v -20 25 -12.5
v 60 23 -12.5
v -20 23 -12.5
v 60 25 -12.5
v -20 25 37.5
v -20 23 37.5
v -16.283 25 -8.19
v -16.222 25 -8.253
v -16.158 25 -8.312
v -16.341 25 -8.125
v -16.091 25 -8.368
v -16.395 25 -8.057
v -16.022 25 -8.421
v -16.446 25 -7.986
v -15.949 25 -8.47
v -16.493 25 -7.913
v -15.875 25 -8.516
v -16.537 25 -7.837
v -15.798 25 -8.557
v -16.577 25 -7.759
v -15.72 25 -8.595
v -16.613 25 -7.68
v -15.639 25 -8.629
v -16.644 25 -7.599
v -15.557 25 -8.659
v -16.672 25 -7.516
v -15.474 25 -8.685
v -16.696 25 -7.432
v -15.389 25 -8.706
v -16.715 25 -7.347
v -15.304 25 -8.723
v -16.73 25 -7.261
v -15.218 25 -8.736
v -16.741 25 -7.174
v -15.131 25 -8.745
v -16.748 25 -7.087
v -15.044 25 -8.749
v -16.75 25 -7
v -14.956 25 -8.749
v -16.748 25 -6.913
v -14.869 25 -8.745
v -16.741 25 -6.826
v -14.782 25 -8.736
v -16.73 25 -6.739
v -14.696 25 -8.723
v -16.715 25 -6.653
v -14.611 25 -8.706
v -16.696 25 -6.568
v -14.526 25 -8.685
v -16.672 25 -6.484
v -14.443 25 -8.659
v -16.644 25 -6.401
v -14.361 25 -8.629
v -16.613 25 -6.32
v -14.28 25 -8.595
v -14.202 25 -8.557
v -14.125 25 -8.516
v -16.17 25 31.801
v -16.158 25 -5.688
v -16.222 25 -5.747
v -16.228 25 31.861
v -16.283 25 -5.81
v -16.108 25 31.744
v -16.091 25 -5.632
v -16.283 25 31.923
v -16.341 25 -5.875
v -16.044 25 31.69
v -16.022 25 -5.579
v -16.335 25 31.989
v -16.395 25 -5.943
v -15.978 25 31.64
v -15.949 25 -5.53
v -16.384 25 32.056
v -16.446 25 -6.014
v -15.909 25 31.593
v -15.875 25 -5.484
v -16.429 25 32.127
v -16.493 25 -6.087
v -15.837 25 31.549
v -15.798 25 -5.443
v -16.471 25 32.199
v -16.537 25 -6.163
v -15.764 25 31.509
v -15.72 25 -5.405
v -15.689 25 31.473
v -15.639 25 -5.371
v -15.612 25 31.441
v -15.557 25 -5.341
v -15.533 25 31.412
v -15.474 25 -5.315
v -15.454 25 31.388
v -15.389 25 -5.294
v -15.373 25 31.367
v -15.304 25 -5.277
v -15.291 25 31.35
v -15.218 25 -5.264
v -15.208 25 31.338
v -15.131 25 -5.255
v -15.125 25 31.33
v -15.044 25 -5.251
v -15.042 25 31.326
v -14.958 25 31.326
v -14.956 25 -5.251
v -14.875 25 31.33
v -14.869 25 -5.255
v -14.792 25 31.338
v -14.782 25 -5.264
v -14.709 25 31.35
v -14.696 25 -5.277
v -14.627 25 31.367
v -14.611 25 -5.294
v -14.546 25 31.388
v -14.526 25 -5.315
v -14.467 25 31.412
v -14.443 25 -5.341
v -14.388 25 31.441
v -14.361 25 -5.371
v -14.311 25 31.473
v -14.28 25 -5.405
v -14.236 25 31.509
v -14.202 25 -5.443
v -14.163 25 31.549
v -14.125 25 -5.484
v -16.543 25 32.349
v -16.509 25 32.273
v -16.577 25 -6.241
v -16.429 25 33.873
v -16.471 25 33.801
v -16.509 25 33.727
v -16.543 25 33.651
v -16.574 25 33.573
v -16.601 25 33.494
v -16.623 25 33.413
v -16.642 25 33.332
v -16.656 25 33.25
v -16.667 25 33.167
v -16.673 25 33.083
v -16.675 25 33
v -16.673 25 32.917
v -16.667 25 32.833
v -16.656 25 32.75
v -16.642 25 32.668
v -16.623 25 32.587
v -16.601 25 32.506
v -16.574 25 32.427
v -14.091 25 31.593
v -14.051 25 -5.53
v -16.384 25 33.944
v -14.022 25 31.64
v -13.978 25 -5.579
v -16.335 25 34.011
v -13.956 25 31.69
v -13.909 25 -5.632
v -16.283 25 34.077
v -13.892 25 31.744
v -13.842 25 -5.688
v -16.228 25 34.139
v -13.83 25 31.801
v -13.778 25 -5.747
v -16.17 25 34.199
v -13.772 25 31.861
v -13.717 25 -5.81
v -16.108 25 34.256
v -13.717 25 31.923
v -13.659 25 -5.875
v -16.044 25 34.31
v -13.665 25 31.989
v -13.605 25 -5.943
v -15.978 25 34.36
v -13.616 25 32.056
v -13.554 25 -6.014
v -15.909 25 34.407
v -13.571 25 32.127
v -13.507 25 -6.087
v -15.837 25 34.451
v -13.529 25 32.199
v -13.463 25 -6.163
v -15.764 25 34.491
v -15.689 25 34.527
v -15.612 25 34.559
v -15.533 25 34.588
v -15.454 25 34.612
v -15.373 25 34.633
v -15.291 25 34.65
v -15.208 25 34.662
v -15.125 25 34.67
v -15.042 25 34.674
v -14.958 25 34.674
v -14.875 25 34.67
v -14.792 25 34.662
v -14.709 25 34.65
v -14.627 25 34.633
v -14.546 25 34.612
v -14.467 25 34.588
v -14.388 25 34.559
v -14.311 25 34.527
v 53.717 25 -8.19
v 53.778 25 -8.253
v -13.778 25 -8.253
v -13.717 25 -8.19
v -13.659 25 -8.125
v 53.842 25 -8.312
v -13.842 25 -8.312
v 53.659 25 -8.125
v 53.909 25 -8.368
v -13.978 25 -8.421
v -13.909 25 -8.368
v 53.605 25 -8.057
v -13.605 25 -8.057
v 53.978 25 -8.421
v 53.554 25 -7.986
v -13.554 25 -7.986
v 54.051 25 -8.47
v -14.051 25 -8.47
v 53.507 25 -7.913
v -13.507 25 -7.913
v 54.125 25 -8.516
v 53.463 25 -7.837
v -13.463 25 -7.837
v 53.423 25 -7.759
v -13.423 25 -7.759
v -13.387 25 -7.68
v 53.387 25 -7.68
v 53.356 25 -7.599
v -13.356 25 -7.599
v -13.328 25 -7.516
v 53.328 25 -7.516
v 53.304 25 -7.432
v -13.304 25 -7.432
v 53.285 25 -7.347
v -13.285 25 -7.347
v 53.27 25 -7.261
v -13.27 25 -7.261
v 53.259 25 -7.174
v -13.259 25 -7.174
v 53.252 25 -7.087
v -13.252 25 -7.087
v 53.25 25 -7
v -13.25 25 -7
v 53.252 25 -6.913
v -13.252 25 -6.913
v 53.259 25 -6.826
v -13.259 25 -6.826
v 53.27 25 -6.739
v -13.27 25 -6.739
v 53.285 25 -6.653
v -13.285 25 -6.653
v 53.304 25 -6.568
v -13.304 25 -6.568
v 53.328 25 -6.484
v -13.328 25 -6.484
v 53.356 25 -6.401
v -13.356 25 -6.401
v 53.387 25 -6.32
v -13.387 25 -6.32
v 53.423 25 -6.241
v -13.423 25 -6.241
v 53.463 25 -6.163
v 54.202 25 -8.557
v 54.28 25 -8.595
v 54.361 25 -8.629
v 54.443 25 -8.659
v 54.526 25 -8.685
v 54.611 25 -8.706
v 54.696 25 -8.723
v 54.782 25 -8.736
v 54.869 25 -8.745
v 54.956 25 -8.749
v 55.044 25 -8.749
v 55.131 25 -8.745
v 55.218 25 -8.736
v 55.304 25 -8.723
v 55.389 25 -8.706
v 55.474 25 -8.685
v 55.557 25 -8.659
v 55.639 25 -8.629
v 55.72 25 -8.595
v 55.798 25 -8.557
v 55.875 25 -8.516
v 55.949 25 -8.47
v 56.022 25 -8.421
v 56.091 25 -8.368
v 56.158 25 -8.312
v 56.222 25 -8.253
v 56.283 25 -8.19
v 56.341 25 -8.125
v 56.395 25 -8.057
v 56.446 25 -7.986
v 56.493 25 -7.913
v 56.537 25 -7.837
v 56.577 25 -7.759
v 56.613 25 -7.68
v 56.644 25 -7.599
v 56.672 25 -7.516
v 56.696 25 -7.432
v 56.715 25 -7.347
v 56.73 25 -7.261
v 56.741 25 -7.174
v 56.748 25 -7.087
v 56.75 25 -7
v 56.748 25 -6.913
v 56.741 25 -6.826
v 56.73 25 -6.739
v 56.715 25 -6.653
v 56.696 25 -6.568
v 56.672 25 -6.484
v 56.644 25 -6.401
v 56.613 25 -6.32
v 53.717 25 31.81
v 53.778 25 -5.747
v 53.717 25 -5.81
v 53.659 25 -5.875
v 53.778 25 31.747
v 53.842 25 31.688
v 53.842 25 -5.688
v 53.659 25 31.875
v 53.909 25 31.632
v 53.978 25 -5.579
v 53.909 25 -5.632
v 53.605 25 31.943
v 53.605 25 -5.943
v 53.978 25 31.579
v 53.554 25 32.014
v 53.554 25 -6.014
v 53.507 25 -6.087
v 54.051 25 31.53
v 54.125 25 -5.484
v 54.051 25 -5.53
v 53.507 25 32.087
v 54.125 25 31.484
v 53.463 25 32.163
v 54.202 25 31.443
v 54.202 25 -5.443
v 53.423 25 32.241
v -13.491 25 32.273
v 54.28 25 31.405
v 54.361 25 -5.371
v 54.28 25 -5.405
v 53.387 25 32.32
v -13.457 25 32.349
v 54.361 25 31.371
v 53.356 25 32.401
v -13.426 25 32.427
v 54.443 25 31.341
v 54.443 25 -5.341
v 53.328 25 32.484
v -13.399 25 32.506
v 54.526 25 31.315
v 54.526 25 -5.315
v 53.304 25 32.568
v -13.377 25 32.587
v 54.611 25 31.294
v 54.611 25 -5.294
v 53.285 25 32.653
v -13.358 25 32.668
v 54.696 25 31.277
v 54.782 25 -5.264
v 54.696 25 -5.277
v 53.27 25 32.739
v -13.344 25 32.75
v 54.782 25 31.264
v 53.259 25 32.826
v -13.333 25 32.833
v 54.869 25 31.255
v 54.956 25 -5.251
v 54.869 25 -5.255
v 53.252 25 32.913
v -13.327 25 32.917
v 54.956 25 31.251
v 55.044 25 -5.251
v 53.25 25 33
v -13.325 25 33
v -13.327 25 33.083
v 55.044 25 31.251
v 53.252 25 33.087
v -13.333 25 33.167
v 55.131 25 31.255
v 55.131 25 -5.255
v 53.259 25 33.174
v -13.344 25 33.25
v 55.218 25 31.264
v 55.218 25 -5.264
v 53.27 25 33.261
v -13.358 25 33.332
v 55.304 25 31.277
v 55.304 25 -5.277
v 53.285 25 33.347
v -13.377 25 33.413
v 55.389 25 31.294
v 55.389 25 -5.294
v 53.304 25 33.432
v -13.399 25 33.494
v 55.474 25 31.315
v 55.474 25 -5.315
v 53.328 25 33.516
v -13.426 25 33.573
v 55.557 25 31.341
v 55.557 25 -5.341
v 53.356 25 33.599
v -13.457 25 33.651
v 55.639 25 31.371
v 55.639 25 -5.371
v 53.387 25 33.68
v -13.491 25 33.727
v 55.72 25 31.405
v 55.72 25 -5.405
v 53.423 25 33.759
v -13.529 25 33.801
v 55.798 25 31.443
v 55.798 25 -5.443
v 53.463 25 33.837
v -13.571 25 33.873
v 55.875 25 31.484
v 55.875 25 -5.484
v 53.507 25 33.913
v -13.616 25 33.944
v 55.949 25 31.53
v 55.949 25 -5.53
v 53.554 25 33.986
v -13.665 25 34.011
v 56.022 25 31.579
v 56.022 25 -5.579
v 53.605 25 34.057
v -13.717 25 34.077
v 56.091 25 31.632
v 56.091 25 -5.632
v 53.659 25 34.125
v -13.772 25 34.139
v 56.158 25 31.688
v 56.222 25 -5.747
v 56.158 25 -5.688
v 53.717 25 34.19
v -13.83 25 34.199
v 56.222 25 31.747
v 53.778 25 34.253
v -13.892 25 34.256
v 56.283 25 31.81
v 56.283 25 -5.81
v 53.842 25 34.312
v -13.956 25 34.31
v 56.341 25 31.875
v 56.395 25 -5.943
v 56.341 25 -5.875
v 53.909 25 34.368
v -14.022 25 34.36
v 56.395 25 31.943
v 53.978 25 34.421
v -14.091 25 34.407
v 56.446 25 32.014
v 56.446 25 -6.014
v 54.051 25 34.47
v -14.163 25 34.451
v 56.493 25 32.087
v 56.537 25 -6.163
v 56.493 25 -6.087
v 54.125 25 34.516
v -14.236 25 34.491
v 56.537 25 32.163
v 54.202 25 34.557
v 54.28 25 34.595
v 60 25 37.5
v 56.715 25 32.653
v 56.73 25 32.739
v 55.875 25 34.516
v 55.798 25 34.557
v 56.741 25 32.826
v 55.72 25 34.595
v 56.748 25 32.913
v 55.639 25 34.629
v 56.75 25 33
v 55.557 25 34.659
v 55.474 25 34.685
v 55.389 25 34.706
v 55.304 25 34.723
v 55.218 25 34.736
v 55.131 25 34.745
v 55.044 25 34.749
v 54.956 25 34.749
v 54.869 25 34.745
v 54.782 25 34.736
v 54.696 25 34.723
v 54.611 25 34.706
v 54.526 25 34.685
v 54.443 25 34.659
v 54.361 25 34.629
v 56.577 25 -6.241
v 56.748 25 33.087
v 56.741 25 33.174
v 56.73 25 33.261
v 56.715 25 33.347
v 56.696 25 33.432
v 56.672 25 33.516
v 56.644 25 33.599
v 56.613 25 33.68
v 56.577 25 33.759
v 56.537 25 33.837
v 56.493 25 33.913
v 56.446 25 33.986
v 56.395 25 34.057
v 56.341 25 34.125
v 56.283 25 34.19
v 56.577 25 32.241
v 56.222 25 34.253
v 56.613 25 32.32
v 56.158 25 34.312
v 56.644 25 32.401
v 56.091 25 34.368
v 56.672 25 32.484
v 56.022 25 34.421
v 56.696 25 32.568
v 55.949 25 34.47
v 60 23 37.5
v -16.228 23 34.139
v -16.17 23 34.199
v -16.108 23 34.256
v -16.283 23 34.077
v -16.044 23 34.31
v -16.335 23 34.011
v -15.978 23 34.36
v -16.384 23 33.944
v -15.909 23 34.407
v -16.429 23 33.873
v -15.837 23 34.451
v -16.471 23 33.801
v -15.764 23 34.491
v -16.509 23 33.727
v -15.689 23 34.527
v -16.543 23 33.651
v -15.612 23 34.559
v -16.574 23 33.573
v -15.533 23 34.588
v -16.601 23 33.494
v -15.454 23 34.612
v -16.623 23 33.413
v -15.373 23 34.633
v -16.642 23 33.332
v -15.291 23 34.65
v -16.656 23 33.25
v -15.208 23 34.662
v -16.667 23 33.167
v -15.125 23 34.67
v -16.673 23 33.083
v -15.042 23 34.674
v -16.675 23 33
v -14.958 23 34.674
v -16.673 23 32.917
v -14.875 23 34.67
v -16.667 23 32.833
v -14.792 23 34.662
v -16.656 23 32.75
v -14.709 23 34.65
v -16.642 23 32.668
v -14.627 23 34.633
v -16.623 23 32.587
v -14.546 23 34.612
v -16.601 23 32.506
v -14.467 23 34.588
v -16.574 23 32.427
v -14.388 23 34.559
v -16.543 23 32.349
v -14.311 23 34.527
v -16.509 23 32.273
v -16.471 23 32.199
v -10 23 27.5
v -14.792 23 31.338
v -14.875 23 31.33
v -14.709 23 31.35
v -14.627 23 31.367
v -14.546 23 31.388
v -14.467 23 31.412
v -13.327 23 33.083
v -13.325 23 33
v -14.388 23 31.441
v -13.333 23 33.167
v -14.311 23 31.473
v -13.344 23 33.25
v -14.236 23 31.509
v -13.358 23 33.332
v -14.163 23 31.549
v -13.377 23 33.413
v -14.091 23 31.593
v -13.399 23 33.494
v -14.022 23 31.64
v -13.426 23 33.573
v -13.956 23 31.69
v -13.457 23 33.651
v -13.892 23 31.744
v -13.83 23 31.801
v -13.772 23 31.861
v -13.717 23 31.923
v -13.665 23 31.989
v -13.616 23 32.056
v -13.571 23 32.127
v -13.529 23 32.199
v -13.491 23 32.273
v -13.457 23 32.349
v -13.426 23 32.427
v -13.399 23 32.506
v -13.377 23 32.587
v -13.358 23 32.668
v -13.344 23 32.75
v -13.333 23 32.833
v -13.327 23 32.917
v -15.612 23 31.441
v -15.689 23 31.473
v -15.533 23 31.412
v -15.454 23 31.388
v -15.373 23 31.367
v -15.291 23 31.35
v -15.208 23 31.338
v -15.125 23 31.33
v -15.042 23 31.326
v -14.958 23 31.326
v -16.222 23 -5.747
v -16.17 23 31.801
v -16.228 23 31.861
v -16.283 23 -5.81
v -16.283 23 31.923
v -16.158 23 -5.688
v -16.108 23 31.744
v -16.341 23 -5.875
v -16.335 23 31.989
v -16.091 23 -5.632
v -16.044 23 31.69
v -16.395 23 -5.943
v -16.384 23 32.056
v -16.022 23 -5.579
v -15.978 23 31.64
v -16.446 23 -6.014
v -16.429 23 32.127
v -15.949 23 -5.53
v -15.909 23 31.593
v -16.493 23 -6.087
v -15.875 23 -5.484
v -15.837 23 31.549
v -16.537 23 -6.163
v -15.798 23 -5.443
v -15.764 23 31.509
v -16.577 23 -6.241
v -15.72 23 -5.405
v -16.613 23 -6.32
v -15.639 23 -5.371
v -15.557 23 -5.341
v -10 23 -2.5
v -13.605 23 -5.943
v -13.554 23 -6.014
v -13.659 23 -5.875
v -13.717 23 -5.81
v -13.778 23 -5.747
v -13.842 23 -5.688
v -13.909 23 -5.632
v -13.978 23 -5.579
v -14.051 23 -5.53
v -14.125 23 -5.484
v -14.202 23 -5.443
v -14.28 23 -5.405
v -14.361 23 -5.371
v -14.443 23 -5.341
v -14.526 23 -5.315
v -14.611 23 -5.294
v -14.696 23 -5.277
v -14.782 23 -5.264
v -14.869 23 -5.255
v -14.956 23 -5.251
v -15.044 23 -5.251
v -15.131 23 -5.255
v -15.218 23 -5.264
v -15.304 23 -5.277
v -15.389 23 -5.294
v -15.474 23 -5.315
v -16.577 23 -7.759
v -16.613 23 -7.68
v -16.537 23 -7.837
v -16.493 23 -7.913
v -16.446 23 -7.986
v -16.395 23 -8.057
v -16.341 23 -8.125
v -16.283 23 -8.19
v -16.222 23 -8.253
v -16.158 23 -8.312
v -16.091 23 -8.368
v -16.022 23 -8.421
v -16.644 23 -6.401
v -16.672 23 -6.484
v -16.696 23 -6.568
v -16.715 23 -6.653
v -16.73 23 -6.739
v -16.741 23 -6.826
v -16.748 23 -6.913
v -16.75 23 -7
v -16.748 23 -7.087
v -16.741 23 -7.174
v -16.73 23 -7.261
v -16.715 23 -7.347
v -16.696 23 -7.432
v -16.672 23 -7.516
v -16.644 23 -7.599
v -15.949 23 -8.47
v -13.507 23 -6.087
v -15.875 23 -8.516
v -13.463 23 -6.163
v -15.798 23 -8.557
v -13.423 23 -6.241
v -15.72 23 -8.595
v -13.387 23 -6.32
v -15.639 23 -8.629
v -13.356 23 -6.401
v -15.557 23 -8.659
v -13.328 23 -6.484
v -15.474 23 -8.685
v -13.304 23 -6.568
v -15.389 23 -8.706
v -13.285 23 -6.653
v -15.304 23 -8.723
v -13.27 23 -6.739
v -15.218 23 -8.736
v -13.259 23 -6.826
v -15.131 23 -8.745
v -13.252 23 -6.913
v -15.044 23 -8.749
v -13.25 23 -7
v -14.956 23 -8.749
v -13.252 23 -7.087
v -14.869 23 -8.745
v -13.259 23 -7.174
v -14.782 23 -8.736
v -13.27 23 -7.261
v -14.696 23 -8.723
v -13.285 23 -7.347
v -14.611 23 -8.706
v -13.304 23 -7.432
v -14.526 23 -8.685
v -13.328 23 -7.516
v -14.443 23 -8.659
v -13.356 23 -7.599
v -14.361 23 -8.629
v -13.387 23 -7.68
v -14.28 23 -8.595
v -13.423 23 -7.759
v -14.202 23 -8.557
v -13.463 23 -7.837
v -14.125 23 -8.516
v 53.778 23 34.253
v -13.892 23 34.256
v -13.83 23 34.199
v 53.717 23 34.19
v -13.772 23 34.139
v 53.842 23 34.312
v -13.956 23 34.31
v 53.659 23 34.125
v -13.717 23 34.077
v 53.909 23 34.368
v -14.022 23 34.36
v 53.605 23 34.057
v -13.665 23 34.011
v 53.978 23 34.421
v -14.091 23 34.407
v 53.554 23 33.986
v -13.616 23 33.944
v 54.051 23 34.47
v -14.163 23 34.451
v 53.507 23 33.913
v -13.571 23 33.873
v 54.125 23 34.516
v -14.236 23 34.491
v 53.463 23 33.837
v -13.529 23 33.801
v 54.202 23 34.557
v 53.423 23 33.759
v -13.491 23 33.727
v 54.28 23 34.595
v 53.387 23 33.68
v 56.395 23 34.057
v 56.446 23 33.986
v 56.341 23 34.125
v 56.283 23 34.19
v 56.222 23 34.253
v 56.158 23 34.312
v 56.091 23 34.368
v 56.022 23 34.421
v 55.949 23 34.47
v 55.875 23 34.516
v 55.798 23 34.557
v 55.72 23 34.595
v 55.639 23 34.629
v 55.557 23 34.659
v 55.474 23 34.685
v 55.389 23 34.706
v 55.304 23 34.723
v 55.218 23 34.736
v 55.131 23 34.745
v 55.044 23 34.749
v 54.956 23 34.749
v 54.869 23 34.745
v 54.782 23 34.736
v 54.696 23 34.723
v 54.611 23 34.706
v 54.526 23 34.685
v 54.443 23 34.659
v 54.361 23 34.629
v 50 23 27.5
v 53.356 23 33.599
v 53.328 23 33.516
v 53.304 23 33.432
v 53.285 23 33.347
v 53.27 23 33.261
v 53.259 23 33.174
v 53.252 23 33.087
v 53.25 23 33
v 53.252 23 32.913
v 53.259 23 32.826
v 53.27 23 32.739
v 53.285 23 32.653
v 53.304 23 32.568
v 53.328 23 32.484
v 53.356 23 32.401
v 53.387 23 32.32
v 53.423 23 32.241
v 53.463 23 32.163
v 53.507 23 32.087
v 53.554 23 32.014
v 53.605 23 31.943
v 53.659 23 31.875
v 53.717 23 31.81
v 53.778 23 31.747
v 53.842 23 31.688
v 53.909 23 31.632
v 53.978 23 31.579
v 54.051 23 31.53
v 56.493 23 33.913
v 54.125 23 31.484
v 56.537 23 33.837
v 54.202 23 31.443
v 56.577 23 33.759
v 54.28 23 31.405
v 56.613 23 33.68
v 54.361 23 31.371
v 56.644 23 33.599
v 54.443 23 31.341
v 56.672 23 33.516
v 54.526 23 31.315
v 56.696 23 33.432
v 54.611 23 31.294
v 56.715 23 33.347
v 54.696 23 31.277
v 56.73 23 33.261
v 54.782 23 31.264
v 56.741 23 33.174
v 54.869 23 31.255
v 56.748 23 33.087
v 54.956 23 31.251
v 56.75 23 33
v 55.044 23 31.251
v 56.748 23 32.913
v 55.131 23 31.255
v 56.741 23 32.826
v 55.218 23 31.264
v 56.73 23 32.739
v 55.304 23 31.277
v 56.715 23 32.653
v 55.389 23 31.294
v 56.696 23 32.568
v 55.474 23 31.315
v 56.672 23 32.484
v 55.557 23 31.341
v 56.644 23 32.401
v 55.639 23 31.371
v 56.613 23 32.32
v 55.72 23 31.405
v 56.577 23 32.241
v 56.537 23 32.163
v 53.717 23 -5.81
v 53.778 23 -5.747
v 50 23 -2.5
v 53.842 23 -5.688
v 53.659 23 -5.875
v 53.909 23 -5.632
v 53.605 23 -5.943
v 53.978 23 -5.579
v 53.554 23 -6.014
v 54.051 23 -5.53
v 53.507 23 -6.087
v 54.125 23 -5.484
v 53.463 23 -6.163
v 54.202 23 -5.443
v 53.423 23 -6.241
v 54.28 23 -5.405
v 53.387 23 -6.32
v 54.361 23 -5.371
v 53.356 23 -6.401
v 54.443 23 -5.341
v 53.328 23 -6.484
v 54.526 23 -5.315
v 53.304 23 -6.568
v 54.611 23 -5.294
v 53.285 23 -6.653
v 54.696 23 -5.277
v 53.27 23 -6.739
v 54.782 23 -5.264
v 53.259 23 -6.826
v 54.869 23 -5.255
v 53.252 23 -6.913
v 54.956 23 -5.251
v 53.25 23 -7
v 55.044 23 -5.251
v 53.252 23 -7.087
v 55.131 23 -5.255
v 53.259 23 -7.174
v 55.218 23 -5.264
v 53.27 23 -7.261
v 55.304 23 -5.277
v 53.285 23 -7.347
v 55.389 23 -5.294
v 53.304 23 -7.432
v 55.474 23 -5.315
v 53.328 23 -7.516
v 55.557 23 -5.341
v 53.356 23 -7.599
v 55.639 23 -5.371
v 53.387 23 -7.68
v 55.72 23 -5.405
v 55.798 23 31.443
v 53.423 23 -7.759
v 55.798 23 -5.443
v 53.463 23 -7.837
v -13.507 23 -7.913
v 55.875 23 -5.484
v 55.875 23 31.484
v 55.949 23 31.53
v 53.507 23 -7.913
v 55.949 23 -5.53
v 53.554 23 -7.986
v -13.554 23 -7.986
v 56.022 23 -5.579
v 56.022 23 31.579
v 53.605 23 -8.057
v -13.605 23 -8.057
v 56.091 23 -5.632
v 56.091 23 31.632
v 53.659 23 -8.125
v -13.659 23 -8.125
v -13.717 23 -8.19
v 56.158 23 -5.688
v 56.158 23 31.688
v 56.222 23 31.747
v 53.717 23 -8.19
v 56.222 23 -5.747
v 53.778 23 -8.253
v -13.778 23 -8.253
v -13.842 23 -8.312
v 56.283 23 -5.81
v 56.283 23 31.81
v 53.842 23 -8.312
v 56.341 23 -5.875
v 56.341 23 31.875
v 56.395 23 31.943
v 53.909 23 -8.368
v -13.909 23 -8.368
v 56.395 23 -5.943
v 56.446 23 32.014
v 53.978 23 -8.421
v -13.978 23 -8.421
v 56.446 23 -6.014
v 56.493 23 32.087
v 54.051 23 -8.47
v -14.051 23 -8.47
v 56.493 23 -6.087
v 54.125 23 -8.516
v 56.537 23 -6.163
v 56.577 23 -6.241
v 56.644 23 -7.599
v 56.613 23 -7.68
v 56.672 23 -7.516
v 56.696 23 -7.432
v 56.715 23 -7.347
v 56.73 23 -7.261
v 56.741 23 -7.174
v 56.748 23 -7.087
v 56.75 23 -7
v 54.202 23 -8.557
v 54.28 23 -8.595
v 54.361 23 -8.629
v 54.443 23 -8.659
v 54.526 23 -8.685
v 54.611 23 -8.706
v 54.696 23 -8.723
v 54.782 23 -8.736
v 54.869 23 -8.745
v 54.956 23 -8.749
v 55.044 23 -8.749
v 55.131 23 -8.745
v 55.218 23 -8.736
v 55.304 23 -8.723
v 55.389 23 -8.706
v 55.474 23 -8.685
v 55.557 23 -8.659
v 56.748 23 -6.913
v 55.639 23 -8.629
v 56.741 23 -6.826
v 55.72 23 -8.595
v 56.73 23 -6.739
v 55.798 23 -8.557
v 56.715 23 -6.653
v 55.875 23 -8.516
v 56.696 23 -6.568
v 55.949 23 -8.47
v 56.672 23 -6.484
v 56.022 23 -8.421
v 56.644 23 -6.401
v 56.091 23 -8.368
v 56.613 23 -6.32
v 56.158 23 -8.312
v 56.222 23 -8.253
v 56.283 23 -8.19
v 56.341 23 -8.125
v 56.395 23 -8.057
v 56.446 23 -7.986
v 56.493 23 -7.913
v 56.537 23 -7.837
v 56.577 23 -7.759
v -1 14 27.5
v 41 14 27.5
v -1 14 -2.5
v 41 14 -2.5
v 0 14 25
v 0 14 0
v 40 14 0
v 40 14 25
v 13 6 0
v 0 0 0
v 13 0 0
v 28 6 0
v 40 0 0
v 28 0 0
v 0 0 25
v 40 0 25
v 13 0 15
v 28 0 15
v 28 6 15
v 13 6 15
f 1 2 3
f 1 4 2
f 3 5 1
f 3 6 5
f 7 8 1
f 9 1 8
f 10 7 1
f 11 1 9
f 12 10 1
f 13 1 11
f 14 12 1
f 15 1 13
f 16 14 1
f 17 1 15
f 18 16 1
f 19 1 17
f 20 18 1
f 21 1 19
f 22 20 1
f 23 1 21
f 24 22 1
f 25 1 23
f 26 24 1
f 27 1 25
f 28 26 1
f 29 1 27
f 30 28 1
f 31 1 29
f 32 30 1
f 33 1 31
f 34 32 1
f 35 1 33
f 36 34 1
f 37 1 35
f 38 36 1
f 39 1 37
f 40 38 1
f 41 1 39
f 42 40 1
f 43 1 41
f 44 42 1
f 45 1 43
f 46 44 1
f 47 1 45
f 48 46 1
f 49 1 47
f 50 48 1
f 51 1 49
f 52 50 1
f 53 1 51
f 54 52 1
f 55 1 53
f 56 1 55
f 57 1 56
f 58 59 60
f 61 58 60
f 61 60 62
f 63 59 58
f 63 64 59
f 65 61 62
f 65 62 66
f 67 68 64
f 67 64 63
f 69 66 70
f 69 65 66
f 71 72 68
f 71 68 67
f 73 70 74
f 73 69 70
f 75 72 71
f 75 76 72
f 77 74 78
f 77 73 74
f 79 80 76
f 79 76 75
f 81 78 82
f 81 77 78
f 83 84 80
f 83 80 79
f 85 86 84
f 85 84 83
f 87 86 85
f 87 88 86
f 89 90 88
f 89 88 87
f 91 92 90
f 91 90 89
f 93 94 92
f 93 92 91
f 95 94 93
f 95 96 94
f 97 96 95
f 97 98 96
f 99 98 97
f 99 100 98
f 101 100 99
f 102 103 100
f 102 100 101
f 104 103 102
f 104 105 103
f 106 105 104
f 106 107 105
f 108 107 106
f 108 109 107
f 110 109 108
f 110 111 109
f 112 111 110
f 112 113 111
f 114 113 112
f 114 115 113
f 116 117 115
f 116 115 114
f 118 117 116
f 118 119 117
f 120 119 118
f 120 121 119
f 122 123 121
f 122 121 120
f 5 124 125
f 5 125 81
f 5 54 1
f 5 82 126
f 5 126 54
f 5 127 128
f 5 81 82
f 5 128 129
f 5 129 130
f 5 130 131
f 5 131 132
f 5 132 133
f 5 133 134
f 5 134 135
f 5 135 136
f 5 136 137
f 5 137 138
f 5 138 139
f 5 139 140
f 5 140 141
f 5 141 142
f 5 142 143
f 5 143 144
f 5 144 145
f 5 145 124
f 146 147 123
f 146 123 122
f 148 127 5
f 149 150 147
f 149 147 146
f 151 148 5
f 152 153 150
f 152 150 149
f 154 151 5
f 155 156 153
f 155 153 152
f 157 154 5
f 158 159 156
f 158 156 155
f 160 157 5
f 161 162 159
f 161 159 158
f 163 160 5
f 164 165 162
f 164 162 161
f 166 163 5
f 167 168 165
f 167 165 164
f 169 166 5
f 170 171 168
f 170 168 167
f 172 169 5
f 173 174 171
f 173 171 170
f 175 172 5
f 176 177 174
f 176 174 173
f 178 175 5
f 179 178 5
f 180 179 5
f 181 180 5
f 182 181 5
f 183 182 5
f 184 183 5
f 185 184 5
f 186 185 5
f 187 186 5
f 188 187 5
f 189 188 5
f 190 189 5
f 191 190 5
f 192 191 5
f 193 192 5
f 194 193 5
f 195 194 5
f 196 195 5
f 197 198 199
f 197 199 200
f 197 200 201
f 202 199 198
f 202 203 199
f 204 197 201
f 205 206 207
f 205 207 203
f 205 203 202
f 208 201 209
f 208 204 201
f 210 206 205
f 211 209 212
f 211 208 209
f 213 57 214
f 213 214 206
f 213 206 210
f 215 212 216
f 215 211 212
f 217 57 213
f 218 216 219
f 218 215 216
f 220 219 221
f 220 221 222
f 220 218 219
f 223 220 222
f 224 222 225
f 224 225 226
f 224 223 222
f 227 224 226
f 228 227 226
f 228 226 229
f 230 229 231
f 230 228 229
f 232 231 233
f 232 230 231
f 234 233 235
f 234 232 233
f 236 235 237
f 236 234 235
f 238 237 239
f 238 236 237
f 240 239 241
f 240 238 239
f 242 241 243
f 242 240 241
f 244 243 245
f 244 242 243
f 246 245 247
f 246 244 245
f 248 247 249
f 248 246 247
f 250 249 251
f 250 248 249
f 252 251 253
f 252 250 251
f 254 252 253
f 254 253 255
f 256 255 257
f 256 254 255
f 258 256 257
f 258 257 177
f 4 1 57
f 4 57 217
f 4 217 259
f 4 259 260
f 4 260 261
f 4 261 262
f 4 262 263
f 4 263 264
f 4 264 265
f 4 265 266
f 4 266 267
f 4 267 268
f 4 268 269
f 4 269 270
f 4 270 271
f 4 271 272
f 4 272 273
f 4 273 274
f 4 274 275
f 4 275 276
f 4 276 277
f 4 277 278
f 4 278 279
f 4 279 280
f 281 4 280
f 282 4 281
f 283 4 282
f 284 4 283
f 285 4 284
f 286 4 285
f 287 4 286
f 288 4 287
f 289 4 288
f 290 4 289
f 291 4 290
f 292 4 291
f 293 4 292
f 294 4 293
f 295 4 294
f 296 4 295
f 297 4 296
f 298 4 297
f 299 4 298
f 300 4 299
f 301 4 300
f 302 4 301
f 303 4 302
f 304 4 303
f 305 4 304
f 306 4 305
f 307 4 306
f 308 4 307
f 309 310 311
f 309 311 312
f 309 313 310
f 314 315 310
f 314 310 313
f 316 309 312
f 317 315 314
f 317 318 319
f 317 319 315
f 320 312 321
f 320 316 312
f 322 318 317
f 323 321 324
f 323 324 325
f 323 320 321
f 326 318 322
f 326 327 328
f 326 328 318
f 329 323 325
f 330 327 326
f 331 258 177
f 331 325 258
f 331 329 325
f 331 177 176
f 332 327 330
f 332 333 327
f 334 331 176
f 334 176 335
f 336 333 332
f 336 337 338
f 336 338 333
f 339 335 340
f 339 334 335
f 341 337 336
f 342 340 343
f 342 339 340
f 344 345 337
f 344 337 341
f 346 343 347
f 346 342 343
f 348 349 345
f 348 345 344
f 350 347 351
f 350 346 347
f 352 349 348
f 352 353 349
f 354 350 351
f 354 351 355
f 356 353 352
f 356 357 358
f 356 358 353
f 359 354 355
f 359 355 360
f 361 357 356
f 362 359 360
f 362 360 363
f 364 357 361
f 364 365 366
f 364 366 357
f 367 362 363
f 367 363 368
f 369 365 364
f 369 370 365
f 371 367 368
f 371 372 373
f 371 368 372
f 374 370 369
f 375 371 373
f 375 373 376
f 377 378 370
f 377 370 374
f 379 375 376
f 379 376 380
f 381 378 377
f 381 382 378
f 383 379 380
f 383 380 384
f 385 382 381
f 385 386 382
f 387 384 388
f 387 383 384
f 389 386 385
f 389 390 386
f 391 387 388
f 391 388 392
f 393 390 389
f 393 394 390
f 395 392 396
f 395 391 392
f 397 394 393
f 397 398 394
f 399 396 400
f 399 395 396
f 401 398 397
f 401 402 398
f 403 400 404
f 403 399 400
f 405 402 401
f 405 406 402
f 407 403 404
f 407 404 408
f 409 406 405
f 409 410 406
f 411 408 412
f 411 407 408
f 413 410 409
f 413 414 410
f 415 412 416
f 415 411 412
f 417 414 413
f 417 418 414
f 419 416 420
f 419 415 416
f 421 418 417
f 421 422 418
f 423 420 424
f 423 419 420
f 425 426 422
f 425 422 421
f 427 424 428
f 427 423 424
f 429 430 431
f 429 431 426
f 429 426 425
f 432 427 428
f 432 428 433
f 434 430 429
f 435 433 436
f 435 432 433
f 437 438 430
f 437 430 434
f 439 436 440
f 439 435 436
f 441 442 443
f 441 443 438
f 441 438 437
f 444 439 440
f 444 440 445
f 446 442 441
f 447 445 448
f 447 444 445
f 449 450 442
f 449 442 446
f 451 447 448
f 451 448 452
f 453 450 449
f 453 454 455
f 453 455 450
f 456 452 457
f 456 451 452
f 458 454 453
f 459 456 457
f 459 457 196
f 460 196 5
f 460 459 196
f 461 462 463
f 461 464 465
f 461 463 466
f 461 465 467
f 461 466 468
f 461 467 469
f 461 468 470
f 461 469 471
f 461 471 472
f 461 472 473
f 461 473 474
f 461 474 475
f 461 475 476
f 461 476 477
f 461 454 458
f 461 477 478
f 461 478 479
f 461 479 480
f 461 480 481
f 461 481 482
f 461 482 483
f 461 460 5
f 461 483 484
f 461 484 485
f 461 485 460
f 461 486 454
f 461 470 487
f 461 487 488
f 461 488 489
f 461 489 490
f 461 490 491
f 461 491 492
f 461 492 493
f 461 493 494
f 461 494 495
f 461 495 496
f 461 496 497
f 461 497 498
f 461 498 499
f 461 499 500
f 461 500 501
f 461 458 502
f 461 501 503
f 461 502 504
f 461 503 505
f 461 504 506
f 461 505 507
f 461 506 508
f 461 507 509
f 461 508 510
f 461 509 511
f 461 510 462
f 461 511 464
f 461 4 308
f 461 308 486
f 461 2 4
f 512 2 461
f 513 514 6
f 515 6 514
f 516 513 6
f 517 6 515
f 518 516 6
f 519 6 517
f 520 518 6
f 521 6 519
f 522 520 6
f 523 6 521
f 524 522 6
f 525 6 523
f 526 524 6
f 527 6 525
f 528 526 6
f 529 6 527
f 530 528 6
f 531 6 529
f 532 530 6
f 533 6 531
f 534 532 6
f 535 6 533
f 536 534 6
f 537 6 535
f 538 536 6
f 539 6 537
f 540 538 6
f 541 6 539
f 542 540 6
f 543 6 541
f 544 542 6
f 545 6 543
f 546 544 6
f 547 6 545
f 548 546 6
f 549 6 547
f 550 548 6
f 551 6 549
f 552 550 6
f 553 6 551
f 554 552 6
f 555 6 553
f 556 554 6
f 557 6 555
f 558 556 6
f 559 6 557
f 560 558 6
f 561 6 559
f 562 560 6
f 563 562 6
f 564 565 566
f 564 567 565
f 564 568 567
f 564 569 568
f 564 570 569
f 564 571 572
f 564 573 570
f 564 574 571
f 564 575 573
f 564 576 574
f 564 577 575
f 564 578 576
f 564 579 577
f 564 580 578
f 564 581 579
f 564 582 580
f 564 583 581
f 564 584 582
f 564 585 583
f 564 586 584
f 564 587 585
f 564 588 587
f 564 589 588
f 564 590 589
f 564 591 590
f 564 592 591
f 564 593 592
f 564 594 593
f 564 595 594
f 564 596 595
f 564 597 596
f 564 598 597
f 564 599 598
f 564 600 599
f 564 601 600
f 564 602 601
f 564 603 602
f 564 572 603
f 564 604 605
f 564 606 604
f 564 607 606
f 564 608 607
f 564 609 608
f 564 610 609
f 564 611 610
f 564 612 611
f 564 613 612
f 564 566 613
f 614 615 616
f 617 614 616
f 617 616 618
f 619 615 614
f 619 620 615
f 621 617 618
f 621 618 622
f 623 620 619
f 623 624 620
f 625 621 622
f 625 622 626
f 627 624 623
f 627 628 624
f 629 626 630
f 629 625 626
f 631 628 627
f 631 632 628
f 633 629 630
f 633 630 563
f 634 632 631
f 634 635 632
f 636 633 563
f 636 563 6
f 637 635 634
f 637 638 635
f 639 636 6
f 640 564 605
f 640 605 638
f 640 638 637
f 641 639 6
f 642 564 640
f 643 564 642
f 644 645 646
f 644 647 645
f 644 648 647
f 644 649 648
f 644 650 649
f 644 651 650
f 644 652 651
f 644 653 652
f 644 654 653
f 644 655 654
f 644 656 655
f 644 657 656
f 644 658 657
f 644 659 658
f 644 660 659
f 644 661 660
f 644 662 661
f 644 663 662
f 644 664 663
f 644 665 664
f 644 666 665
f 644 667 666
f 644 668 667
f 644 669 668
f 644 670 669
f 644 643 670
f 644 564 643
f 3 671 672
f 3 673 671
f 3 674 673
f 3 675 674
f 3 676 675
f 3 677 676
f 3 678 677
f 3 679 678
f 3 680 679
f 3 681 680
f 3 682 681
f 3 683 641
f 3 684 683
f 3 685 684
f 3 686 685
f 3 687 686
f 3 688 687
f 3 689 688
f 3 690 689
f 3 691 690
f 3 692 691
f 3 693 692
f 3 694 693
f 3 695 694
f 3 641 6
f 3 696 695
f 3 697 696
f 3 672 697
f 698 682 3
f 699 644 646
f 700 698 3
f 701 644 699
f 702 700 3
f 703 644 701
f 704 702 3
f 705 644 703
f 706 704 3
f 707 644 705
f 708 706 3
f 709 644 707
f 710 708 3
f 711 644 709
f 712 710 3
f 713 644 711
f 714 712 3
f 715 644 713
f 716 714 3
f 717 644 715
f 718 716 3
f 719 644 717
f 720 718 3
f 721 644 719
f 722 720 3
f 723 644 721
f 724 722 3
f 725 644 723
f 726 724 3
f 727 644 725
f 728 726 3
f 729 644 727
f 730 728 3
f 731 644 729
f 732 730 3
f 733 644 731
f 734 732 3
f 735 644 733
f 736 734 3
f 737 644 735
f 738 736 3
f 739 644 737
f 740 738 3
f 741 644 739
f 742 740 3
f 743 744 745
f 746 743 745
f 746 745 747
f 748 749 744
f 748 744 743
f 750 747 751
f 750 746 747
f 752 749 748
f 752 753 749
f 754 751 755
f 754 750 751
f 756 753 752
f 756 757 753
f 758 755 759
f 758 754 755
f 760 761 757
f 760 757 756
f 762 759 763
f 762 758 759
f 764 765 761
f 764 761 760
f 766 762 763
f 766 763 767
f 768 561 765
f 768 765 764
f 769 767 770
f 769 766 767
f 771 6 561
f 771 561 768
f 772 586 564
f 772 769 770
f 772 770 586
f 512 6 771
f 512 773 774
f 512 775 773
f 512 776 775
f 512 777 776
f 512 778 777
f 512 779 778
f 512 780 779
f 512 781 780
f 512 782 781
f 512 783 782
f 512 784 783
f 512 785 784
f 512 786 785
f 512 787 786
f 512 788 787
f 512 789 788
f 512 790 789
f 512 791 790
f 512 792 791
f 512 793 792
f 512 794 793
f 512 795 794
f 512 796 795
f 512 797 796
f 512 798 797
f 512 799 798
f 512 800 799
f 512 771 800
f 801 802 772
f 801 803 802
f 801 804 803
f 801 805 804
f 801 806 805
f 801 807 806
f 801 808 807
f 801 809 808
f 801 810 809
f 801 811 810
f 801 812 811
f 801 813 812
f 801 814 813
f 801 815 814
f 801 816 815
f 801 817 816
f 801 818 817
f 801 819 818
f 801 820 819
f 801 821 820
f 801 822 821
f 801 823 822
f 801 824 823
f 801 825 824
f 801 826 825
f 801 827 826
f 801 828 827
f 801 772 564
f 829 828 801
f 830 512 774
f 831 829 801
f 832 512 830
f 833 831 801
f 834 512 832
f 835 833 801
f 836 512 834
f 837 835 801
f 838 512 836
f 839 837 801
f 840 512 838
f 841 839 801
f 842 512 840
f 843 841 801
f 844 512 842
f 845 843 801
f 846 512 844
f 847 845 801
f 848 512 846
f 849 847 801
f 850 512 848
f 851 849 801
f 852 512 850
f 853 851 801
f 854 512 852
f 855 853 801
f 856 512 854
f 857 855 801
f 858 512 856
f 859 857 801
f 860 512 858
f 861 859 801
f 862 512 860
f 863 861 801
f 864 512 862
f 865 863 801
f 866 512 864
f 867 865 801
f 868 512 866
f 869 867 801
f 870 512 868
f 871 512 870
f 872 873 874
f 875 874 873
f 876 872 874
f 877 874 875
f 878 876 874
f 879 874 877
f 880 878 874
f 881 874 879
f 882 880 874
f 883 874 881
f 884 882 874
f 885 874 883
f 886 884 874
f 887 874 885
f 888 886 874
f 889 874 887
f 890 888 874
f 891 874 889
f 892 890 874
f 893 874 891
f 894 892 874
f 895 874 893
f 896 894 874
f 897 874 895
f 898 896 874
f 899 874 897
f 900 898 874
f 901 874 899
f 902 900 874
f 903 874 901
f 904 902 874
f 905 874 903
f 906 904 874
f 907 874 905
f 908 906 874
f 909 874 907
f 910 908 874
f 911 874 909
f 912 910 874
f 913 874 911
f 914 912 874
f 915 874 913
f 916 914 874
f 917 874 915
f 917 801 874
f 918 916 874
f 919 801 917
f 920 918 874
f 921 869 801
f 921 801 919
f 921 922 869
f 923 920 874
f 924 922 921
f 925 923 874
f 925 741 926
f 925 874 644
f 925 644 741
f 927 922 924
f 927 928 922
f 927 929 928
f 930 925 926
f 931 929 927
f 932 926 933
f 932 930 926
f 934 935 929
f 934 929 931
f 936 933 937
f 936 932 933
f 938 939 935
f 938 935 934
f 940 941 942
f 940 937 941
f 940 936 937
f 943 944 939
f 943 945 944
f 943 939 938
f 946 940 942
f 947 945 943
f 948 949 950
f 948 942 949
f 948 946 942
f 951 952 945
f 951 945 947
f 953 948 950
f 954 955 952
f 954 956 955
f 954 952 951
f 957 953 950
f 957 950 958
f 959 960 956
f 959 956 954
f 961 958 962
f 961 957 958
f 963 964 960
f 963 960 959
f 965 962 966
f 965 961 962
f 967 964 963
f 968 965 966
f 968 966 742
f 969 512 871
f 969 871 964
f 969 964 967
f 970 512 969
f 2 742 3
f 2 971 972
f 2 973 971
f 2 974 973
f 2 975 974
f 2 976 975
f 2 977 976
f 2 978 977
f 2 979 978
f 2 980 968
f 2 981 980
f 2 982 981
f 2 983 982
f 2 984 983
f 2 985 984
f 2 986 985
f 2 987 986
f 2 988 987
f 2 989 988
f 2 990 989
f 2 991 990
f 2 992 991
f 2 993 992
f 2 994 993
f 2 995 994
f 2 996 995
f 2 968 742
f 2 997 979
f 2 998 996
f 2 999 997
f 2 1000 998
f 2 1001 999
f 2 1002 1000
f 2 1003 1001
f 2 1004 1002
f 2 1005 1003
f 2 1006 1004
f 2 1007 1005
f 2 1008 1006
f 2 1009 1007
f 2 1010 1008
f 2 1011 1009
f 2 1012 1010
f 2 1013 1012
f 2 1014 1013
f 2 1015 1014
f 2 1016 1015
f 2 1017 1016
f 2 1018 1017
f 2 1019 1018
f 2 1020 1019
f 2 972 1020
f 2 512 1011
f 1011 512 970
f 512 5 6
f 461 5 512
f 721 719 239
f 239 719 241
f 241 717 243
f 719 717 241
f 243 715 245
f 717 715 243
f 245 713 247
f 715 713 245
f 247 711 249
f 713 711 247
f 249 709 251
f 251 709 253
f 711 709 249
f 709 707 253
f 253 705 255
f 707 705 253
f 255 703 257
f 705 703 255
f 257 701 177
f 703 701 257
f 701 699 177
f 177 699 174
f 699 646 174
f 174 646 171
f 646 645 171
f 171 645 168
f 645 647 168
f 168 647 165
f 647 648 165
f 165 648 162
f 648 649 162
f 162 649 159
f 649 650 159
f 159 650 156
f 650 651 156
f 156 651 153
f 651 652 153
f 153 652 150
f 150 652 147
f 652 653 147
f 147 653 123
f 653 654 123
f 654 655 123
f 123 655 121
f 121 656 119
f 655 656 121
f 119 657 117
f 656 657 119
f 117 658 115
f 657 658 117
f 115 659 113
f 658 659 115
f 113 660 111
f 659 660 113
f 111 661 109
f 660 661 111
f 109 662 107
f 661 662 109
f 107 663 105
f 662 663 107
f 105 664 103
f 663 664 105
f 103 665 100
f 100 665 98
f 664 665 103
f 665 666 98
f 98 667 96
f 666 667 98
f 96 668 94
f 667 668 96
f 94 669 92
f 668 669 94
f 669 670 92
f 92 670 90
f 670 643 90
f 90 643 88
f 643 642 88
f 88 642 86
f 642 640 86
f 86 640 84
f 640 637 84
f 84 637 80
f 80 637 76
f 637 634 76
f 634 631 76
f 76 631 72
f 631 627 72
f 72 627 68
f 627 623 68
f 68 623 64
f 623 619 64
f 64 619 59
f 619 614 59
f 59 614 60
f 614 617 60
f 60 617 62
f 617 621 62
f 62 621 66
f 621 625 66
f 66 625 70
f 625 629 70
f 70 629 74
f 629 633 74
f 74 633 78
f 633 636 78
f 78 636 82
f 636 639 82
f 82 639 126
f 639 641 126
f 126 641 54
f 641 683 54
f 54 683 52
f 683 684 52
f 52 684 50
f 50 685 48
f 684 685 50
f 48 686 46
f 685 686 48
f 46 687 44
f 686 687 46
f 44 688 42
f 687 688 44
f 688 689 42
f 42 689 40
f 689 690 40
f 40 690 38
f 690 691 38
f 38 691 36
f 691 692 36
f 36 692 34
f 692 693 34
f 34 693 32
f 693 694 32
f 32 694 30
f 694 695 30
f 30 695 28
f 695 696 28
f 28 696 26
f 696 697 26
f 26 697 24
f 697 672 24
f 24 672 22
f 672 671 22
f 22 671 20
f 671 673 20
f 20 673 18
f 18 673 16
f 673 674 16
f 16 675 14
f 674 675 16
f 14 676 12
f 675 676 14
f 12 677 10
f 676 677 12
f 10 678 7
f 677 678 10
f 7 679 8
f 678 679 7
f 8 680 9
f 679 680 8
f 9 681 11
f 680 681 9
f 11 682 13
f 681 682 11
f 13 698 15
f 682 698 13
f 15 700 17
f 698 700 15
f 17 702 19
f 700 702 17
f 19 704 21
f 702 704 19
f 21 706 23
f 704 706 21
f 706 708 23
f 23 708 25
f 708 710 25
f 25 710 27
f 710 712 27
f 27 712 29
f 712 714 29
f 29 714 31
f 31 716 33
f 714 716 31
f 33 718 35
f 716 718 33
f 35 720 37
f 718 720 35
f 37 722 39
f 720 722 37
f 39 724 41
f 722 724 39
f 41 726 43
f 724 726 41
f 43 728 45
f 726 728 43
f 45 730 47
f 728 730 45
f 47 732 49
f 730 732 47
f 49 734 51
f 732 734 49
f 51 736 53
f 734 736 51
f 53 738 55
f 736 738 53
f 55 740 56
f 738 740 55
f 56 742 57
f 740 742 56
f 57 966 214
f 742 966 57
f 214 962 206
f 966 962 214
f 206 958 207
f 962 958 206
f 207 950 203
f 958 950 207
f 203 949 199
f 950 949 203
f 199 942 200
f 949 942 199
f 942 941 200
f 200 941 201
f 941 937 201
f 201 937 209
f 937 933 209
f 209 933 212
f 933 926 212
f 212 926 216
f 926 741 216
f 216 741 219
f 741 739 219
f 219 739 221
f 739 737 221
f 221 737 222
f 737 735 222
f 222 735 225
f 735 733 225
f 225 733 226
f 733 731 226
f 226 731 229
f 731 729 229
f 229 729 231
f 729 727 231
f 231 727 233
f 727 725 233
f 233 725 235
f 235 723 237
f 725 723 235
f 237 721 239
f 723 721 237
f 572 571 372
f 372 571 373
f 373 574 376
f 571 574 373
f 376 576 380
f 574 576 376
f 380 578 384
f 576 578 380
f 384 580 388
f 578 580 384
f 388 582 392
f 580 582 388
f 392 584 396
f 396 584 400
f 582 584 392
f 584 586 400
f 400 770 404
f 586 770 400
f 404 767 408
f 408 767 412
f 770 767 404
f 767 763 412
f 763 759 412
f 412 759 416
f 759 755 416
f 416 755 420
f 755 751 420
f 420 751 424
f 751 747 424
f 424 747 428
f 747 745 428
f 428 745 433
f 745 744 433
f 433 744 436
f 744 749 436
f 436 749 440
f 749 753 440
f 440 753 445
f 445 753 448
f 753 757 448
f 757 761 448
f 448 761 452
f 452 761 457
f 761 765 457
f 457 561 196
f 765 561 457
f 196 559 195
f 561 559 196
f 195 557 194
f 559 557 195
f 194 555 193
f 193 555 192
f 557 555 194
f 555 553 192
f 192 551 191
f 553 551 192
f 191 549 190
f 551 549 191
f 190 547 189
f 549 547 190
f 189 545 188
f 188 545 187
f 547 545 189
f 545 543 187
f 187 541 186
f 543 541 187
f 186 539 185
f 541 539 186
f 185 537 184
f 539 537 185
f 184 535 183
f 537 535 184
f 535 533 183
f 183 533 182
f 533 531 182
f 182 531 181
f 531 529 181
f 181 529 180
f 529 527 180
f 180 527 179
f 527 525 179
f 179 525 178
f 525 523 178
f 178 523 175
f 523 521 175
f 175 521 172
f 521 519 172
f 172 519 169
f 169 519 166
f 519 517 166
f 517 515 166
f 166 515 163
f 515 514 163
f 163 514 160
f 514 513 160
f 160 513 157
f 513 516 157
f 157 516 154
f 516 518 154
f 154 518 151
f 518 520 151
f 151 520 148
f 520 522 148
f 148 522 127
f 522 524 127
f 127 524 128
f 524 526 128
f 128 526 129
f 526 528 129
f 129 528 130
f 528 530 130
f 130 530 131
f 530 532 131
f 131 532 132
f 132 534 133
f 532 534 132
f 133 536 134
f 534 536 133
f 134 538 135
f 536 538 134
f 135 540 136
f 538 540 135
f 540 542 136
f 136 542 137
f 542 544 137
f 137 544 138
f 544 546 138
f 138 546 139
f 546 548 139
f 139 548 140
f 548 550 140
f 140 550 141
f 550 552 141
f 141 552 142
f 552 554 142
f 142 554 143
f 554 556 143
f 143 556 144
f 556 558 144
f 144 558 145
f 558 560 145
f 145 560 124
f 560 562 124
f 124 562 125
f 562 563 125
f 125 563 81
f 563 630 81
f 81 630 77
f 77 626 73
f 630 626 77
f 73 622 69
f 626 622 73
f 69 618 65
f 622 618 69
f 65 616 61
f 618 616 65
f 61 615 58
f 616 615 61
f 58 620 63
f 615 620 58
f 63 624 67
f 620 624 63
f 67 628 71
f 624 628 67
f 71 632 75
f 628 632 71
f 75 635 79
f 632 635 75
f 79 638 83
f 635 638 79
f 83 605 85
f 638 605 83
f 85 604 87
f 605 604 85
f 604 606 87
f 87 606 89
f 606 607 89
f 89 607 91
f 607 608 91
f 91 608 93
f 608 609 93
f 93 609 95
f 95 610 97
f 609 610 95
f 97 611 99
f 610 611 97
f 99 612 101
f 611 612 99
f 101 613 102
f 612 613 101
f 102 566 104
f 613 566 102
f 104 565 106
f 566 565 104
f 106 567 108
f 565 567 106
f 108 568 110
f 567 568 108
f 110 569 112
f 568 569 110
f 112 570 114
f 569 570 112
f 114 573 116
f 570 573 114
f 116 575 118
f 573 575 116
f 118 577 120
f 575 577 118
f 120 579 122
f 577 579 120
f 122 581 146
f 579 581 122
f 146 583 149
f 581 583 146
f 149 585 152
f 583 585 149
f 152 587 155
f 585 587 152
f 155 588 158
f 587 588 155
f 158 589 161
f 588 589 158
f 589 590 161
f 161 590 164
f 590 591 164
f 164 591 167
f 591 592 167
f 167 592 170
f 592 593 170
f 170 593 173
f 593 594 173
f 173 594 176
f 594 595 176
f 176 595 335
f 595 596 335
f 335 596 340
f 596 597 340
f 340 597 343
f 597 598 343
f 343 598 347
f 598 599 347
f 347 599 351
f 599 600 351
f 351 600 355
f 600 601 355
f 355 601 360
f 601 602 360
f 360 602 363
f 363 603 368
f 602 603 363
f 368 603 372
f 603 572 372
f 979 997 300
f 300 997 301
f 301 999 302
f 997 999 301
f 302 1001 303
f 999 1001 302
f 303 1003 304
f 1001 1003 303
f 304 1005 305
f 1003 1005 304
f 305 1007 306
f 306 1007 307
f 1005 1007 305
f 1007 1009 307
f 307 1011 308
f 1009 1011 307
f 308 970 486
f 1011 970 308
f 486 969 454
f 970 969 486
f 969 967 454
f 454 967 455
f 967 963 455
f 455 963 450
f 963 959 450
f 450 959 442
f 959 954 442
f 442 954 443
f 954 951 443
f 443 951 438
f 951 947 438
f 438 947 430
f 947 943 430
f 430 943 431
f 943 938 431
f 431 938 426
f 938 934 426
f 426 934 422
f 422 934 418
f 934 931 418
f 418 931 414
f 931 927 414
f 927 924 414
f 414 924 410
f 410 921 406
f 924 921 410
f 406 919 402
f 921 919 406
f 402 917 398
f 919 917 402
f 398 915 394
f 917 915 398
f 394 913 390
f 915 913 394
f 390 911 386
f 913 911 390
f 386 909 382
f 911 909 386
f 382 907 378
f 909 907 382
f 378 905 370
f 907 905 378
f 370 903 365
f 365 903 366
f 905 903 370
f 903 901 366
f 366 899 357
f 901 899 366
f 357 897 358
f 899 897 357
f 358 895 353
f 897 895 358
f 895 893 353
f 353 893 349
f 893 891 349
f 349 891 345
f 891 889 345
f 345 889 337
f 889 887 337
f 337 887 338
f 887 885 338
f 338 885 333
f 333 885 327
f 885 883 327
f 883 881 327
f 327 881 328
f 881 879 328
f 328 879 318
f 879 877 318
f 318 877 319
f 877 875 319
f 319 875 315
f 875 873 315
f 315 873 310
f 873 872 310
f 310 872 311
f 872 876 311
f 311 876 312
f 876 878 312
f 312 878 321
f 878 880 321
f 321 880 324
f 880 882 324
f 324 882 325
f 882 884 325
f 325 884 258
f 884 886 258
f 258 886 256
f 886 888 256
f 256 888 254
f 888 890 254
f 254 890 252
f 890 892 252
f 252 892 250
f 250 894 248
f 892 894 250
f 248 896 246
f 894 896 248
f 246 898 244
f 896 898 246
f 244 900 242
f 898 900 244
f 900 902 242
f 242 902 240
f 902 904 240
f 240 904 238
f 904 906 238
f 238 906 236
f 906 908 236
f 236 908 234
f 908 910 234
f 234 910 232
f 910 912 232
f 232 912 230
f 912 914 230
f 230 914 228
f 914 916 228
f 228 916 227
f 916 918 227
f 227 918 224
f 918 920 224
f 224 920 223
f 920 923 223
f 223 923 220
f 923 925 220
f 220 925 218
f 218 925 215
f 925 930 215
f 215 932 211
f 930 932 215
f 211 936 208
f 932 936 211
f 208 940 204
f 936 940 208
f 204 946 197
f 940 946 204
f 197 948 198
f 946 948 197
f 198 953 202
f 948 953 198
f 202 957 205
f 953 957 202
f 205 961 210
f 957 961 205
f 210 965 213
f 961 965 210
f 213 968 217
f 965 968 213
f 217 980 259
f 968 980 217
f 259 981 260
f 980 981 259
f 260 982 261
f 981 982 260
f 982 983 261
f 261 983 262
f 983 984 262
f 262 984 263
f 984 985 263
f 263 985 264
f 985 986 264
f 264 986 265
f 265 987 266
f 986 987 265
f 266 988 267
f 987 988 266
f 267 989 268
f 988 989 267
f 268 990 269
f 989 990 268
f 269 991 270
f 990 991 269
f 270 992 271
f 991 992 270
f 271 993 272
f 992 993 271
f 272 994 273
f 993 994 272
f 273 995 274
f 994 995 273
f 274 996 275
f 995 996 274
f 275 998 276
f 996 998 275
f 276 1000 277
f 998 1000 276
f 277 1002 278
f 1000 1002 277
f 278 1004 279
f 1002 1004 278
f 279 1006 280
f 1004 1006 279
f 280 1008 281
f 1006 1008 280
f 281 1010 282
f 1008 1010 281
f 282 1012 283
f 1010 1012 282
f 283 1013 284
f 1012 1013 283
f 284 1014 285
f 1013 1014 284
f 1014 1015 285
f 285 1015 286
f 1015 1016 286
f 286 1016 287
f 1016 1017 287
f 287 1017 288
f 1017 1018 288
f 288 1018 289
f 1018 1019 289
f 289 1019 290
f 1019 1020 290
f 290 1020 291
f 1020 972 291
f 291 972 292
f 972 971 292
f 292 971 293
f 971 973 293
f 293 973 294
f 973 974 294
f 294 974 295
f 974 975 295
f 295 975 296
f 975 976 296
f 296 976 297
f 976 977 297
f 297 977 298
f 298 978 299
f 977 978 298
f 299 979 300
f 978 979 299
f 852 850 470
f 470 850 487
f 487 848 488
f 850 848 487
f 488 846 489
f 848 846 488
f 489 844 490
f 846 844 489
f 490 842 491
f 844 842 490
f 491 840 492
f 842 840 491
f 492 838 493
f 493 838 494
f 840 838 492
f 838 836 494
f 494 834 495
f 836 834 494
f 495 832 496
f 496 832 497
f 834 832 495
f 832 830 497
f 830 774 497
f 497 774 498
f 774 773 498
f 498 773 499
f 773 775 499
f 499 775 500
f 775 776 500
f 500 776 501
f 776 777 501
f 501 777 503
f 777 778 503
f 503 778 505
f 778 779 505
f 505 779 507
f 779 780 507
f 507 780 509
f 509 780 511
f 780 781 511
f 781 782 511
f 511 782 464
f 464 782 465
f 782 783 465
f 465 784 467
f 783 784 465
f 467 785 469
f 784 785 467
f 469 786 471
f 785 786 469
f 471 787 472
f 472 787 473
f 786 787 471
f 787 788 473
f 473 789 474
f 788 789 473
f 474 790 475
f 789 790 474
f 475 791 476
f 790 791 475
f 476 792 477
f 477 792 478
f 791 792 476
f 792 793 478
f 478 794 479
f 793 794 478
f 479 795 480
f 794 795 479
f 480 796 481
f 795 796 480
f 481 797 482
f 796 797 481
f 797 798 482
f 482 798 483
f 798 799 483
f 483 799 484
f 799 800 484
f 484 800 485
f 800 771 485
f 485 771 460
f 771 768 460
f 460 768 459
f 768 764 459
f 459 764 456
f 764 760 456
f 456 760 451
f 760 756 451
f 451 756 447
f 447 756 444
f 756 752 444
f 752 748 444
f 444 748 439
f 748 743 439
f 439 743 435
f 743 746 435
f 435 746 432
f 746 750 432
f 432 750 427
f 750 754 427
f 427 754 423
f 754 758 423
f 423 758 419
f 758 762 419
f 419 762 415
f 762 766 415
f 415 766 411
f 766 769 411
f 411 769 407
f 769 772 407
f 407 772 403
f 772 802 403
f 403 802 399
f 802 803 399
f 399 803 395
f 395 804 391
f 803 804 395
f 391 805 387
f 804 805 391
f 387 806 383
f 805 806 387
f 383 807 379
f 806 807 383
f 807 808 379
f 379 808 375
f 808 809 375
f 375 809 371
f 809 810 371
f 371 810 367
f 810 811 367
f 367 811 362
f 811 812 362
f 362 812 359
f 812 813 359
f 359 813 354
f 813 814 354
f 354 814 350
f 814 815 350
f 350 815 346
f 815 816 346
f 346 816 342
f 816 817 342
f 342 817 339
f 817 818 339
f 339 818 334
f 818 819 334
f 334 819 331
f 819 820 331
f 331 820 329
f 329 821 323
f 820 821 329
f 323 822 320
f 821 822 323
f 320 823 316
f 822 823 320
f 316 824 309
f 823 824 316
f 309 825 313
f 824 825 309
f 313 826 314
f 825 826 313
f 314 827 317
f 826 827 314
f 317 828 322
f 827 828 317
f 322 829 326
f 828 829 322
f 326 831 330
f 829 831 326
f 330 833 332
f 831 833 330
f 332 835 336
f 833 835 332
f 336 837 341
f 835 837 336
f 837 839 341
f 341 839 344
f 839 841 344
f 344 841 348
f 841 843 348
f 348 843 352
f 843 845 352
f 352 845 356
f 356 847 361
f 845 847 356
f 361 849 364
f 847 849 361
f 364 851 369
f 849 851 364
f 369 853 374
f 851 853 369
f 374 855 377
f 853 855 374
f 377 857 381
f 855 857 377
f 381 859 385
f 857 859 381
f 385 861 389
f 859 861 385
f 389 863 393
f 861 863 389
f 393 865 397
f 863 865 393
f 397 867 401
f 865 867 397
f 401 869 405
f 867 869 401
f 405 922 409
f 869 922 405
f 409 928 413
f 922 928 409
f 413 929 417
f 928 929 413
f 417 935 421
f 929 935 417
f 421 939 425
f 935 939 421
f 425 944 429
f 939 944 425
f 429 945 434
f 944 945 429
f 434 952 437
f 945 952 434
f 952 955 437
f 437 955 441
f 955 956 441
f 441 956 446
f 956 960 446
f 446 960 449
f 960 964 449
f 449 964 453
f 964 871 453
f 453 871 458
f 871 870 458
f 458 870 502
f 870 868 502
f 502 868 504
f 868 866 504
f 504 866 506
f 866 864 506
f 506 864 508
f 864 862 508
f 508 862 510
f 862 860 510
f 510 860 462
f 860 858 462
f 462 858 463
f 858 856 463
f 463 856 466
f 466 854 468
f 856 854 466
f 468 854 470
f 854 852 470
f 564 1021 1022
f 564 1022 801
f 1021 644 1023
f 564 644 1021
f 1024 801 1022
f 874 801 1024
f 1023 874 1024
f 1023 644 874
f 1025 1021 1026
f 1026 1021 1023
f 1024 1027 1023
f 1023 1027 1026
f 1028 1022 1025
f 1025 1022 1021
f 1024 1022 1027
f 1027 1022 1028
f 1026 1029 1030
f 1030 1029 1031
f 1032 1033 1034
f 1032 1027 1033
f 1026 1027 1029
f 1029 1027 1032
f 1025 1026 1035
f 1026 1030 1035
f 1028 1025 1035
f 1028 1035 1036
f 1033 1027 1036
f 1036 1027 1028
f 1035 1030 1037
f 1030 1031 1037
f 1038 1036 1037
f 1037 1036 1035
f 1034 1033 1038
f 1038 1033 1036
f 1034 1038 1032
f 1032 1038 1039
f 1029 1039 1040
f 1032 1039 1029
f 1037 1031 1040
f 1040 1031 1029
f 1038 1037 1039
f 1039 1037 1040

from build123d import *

# Parameters (mm, degrees)
SKETCH_W         = 40
SKETCH_H         = 25
PAD_DEPTH        = 25
SKETCH002_W      = 15
SKETCH002_H      = 15
POCKET_DEPTH     = 6
SKETCH003_W      = 60
SKETCH003_H      = 30
PAD001_DEPTH     = 11
CHAMFER_SIZE     = 9
CHAMFER_FACE12_W = 2
CHAMFER_FACE12_H = 30
PAD002_DEPTH     = 10
PAD002_FACE10_W  = 2
PAD002_FACE10_H  = 30
PAD003_DEPTH     = 10
SKETCH004_W      = 80
SKETCH004_H      = 2
PAD004_DEPTH     = 10
PAD004_FACE23_W  = 2
PAD004_FACE23_H  = 80
PAD005_DEPTH     = 50
SKETCH005_R      = 1.675
SKETCH005_R_2    = 1.75
POCKET001_DEPTH  = 5


with BuildPart() as part:
    # Sketch → Pad (new body)
    with BuildSketch(Plane.XY):
        with Locations((20, 12.5)):
            Rectangle(SKETCH_W, SKETCH_H)
    extrude(amount=PAD_DEPTH)

    # Sketch002 (on Face1 of Pad) → Pocket (cut)
    with BuildSketch(Plane.XZ):
        with Locations((20.5, 7.5)):
            Rectangle(SKETCH002_W, SKETCH002_H)
    extrude(amount=-POCKET_DEPTH, mode=Mode.SUBTRACT)

    # Sketch003 (on Face9 of Pocket) → Pad001 (join)
    with BuildSketch(Plane(origin=(0, 25, 0), x_dir=(-1, 0, 0), z_dir=(0, 1, 0))):
        with Locations((-20, 12.5)):
            Rectangle(SKETCH003_W, SKETCH003_H)
    extrude(amount=-PAD001_DEPTH)

    # Chamfer
    chamfer_edges = [part.edges().sort_by_distance(p)[0] for p in [
        (-10, 14, 12.5),
        (50, 14, 12.5),
    ]]
    chamfer(chamfer_edges, length=CHAMFER_SIZE)

    # Chamfer Face12 → Pad002 (add)
    with BuildSketch(Plane(origin=(50, 24, 12.5), x_dir=(0, -1, 0), z_dir=(1, 0, 0))):
        Rectangle(CHAMFER_FACE12_W, CHAMFER_FACE12_H)
    extrude(amount=PAD002_DEPTH)

    # Pad002 Face10 → Pad003 (add)
    with BuildSketch(Plane(origin=(-10, 24, 12.5), x_dir=(0, 1, 0), z_dir=(-1, 0, 0))):
        Rectangle(PAD002_FACE10_W, PAD002_FACE10_H)
    extrude(amount=PAD003_DEPTH)

    # Sketch004 (on Face18 of Pad003) → Pad004 (join)
    with BuildSketch(Plane(origin=(0, 0, -2.5), x_dir=(1, 0, 0), z_dir=(0, 0, -1))):
        with Locations((20, -24)):
            Rectangle(SKETCH004_W, SKETCH004_H)
    extrude(amount=PAD004_DEPTH)

    # Pad004 Face23 → Pad005 (add)
    with BuildSketch(Plane(origin=(20, 24, -12.5), x_dir=(0, -1, 0), z_dir=(0, 0, -1))):
        Rectangle(PAD004_FACE23_W, PAD004_FACE23_H)
    extrude(amount=-PAD005_DEPTH)

    # Sketch005 (on Face2 of Pad005) → Pocket001 (cut)
    with BuildSketch(Plane.XZ.offset(-23)):
        with Locations((-15, 33)):
            Circle(SKETCH005_R)
        with Locations((-15, -7)):
            Circle(SKETCH005_R_2)
        with Locations((55, 33)):
            Circle(SKETCH005_R_2)
        with Locations((55, -7)):
            Circle(SKETCH005_R_2)
    extrude(amount=-POCKET001_DEPTH, mode=Mode.SUBTRACT)


solid = part.part
